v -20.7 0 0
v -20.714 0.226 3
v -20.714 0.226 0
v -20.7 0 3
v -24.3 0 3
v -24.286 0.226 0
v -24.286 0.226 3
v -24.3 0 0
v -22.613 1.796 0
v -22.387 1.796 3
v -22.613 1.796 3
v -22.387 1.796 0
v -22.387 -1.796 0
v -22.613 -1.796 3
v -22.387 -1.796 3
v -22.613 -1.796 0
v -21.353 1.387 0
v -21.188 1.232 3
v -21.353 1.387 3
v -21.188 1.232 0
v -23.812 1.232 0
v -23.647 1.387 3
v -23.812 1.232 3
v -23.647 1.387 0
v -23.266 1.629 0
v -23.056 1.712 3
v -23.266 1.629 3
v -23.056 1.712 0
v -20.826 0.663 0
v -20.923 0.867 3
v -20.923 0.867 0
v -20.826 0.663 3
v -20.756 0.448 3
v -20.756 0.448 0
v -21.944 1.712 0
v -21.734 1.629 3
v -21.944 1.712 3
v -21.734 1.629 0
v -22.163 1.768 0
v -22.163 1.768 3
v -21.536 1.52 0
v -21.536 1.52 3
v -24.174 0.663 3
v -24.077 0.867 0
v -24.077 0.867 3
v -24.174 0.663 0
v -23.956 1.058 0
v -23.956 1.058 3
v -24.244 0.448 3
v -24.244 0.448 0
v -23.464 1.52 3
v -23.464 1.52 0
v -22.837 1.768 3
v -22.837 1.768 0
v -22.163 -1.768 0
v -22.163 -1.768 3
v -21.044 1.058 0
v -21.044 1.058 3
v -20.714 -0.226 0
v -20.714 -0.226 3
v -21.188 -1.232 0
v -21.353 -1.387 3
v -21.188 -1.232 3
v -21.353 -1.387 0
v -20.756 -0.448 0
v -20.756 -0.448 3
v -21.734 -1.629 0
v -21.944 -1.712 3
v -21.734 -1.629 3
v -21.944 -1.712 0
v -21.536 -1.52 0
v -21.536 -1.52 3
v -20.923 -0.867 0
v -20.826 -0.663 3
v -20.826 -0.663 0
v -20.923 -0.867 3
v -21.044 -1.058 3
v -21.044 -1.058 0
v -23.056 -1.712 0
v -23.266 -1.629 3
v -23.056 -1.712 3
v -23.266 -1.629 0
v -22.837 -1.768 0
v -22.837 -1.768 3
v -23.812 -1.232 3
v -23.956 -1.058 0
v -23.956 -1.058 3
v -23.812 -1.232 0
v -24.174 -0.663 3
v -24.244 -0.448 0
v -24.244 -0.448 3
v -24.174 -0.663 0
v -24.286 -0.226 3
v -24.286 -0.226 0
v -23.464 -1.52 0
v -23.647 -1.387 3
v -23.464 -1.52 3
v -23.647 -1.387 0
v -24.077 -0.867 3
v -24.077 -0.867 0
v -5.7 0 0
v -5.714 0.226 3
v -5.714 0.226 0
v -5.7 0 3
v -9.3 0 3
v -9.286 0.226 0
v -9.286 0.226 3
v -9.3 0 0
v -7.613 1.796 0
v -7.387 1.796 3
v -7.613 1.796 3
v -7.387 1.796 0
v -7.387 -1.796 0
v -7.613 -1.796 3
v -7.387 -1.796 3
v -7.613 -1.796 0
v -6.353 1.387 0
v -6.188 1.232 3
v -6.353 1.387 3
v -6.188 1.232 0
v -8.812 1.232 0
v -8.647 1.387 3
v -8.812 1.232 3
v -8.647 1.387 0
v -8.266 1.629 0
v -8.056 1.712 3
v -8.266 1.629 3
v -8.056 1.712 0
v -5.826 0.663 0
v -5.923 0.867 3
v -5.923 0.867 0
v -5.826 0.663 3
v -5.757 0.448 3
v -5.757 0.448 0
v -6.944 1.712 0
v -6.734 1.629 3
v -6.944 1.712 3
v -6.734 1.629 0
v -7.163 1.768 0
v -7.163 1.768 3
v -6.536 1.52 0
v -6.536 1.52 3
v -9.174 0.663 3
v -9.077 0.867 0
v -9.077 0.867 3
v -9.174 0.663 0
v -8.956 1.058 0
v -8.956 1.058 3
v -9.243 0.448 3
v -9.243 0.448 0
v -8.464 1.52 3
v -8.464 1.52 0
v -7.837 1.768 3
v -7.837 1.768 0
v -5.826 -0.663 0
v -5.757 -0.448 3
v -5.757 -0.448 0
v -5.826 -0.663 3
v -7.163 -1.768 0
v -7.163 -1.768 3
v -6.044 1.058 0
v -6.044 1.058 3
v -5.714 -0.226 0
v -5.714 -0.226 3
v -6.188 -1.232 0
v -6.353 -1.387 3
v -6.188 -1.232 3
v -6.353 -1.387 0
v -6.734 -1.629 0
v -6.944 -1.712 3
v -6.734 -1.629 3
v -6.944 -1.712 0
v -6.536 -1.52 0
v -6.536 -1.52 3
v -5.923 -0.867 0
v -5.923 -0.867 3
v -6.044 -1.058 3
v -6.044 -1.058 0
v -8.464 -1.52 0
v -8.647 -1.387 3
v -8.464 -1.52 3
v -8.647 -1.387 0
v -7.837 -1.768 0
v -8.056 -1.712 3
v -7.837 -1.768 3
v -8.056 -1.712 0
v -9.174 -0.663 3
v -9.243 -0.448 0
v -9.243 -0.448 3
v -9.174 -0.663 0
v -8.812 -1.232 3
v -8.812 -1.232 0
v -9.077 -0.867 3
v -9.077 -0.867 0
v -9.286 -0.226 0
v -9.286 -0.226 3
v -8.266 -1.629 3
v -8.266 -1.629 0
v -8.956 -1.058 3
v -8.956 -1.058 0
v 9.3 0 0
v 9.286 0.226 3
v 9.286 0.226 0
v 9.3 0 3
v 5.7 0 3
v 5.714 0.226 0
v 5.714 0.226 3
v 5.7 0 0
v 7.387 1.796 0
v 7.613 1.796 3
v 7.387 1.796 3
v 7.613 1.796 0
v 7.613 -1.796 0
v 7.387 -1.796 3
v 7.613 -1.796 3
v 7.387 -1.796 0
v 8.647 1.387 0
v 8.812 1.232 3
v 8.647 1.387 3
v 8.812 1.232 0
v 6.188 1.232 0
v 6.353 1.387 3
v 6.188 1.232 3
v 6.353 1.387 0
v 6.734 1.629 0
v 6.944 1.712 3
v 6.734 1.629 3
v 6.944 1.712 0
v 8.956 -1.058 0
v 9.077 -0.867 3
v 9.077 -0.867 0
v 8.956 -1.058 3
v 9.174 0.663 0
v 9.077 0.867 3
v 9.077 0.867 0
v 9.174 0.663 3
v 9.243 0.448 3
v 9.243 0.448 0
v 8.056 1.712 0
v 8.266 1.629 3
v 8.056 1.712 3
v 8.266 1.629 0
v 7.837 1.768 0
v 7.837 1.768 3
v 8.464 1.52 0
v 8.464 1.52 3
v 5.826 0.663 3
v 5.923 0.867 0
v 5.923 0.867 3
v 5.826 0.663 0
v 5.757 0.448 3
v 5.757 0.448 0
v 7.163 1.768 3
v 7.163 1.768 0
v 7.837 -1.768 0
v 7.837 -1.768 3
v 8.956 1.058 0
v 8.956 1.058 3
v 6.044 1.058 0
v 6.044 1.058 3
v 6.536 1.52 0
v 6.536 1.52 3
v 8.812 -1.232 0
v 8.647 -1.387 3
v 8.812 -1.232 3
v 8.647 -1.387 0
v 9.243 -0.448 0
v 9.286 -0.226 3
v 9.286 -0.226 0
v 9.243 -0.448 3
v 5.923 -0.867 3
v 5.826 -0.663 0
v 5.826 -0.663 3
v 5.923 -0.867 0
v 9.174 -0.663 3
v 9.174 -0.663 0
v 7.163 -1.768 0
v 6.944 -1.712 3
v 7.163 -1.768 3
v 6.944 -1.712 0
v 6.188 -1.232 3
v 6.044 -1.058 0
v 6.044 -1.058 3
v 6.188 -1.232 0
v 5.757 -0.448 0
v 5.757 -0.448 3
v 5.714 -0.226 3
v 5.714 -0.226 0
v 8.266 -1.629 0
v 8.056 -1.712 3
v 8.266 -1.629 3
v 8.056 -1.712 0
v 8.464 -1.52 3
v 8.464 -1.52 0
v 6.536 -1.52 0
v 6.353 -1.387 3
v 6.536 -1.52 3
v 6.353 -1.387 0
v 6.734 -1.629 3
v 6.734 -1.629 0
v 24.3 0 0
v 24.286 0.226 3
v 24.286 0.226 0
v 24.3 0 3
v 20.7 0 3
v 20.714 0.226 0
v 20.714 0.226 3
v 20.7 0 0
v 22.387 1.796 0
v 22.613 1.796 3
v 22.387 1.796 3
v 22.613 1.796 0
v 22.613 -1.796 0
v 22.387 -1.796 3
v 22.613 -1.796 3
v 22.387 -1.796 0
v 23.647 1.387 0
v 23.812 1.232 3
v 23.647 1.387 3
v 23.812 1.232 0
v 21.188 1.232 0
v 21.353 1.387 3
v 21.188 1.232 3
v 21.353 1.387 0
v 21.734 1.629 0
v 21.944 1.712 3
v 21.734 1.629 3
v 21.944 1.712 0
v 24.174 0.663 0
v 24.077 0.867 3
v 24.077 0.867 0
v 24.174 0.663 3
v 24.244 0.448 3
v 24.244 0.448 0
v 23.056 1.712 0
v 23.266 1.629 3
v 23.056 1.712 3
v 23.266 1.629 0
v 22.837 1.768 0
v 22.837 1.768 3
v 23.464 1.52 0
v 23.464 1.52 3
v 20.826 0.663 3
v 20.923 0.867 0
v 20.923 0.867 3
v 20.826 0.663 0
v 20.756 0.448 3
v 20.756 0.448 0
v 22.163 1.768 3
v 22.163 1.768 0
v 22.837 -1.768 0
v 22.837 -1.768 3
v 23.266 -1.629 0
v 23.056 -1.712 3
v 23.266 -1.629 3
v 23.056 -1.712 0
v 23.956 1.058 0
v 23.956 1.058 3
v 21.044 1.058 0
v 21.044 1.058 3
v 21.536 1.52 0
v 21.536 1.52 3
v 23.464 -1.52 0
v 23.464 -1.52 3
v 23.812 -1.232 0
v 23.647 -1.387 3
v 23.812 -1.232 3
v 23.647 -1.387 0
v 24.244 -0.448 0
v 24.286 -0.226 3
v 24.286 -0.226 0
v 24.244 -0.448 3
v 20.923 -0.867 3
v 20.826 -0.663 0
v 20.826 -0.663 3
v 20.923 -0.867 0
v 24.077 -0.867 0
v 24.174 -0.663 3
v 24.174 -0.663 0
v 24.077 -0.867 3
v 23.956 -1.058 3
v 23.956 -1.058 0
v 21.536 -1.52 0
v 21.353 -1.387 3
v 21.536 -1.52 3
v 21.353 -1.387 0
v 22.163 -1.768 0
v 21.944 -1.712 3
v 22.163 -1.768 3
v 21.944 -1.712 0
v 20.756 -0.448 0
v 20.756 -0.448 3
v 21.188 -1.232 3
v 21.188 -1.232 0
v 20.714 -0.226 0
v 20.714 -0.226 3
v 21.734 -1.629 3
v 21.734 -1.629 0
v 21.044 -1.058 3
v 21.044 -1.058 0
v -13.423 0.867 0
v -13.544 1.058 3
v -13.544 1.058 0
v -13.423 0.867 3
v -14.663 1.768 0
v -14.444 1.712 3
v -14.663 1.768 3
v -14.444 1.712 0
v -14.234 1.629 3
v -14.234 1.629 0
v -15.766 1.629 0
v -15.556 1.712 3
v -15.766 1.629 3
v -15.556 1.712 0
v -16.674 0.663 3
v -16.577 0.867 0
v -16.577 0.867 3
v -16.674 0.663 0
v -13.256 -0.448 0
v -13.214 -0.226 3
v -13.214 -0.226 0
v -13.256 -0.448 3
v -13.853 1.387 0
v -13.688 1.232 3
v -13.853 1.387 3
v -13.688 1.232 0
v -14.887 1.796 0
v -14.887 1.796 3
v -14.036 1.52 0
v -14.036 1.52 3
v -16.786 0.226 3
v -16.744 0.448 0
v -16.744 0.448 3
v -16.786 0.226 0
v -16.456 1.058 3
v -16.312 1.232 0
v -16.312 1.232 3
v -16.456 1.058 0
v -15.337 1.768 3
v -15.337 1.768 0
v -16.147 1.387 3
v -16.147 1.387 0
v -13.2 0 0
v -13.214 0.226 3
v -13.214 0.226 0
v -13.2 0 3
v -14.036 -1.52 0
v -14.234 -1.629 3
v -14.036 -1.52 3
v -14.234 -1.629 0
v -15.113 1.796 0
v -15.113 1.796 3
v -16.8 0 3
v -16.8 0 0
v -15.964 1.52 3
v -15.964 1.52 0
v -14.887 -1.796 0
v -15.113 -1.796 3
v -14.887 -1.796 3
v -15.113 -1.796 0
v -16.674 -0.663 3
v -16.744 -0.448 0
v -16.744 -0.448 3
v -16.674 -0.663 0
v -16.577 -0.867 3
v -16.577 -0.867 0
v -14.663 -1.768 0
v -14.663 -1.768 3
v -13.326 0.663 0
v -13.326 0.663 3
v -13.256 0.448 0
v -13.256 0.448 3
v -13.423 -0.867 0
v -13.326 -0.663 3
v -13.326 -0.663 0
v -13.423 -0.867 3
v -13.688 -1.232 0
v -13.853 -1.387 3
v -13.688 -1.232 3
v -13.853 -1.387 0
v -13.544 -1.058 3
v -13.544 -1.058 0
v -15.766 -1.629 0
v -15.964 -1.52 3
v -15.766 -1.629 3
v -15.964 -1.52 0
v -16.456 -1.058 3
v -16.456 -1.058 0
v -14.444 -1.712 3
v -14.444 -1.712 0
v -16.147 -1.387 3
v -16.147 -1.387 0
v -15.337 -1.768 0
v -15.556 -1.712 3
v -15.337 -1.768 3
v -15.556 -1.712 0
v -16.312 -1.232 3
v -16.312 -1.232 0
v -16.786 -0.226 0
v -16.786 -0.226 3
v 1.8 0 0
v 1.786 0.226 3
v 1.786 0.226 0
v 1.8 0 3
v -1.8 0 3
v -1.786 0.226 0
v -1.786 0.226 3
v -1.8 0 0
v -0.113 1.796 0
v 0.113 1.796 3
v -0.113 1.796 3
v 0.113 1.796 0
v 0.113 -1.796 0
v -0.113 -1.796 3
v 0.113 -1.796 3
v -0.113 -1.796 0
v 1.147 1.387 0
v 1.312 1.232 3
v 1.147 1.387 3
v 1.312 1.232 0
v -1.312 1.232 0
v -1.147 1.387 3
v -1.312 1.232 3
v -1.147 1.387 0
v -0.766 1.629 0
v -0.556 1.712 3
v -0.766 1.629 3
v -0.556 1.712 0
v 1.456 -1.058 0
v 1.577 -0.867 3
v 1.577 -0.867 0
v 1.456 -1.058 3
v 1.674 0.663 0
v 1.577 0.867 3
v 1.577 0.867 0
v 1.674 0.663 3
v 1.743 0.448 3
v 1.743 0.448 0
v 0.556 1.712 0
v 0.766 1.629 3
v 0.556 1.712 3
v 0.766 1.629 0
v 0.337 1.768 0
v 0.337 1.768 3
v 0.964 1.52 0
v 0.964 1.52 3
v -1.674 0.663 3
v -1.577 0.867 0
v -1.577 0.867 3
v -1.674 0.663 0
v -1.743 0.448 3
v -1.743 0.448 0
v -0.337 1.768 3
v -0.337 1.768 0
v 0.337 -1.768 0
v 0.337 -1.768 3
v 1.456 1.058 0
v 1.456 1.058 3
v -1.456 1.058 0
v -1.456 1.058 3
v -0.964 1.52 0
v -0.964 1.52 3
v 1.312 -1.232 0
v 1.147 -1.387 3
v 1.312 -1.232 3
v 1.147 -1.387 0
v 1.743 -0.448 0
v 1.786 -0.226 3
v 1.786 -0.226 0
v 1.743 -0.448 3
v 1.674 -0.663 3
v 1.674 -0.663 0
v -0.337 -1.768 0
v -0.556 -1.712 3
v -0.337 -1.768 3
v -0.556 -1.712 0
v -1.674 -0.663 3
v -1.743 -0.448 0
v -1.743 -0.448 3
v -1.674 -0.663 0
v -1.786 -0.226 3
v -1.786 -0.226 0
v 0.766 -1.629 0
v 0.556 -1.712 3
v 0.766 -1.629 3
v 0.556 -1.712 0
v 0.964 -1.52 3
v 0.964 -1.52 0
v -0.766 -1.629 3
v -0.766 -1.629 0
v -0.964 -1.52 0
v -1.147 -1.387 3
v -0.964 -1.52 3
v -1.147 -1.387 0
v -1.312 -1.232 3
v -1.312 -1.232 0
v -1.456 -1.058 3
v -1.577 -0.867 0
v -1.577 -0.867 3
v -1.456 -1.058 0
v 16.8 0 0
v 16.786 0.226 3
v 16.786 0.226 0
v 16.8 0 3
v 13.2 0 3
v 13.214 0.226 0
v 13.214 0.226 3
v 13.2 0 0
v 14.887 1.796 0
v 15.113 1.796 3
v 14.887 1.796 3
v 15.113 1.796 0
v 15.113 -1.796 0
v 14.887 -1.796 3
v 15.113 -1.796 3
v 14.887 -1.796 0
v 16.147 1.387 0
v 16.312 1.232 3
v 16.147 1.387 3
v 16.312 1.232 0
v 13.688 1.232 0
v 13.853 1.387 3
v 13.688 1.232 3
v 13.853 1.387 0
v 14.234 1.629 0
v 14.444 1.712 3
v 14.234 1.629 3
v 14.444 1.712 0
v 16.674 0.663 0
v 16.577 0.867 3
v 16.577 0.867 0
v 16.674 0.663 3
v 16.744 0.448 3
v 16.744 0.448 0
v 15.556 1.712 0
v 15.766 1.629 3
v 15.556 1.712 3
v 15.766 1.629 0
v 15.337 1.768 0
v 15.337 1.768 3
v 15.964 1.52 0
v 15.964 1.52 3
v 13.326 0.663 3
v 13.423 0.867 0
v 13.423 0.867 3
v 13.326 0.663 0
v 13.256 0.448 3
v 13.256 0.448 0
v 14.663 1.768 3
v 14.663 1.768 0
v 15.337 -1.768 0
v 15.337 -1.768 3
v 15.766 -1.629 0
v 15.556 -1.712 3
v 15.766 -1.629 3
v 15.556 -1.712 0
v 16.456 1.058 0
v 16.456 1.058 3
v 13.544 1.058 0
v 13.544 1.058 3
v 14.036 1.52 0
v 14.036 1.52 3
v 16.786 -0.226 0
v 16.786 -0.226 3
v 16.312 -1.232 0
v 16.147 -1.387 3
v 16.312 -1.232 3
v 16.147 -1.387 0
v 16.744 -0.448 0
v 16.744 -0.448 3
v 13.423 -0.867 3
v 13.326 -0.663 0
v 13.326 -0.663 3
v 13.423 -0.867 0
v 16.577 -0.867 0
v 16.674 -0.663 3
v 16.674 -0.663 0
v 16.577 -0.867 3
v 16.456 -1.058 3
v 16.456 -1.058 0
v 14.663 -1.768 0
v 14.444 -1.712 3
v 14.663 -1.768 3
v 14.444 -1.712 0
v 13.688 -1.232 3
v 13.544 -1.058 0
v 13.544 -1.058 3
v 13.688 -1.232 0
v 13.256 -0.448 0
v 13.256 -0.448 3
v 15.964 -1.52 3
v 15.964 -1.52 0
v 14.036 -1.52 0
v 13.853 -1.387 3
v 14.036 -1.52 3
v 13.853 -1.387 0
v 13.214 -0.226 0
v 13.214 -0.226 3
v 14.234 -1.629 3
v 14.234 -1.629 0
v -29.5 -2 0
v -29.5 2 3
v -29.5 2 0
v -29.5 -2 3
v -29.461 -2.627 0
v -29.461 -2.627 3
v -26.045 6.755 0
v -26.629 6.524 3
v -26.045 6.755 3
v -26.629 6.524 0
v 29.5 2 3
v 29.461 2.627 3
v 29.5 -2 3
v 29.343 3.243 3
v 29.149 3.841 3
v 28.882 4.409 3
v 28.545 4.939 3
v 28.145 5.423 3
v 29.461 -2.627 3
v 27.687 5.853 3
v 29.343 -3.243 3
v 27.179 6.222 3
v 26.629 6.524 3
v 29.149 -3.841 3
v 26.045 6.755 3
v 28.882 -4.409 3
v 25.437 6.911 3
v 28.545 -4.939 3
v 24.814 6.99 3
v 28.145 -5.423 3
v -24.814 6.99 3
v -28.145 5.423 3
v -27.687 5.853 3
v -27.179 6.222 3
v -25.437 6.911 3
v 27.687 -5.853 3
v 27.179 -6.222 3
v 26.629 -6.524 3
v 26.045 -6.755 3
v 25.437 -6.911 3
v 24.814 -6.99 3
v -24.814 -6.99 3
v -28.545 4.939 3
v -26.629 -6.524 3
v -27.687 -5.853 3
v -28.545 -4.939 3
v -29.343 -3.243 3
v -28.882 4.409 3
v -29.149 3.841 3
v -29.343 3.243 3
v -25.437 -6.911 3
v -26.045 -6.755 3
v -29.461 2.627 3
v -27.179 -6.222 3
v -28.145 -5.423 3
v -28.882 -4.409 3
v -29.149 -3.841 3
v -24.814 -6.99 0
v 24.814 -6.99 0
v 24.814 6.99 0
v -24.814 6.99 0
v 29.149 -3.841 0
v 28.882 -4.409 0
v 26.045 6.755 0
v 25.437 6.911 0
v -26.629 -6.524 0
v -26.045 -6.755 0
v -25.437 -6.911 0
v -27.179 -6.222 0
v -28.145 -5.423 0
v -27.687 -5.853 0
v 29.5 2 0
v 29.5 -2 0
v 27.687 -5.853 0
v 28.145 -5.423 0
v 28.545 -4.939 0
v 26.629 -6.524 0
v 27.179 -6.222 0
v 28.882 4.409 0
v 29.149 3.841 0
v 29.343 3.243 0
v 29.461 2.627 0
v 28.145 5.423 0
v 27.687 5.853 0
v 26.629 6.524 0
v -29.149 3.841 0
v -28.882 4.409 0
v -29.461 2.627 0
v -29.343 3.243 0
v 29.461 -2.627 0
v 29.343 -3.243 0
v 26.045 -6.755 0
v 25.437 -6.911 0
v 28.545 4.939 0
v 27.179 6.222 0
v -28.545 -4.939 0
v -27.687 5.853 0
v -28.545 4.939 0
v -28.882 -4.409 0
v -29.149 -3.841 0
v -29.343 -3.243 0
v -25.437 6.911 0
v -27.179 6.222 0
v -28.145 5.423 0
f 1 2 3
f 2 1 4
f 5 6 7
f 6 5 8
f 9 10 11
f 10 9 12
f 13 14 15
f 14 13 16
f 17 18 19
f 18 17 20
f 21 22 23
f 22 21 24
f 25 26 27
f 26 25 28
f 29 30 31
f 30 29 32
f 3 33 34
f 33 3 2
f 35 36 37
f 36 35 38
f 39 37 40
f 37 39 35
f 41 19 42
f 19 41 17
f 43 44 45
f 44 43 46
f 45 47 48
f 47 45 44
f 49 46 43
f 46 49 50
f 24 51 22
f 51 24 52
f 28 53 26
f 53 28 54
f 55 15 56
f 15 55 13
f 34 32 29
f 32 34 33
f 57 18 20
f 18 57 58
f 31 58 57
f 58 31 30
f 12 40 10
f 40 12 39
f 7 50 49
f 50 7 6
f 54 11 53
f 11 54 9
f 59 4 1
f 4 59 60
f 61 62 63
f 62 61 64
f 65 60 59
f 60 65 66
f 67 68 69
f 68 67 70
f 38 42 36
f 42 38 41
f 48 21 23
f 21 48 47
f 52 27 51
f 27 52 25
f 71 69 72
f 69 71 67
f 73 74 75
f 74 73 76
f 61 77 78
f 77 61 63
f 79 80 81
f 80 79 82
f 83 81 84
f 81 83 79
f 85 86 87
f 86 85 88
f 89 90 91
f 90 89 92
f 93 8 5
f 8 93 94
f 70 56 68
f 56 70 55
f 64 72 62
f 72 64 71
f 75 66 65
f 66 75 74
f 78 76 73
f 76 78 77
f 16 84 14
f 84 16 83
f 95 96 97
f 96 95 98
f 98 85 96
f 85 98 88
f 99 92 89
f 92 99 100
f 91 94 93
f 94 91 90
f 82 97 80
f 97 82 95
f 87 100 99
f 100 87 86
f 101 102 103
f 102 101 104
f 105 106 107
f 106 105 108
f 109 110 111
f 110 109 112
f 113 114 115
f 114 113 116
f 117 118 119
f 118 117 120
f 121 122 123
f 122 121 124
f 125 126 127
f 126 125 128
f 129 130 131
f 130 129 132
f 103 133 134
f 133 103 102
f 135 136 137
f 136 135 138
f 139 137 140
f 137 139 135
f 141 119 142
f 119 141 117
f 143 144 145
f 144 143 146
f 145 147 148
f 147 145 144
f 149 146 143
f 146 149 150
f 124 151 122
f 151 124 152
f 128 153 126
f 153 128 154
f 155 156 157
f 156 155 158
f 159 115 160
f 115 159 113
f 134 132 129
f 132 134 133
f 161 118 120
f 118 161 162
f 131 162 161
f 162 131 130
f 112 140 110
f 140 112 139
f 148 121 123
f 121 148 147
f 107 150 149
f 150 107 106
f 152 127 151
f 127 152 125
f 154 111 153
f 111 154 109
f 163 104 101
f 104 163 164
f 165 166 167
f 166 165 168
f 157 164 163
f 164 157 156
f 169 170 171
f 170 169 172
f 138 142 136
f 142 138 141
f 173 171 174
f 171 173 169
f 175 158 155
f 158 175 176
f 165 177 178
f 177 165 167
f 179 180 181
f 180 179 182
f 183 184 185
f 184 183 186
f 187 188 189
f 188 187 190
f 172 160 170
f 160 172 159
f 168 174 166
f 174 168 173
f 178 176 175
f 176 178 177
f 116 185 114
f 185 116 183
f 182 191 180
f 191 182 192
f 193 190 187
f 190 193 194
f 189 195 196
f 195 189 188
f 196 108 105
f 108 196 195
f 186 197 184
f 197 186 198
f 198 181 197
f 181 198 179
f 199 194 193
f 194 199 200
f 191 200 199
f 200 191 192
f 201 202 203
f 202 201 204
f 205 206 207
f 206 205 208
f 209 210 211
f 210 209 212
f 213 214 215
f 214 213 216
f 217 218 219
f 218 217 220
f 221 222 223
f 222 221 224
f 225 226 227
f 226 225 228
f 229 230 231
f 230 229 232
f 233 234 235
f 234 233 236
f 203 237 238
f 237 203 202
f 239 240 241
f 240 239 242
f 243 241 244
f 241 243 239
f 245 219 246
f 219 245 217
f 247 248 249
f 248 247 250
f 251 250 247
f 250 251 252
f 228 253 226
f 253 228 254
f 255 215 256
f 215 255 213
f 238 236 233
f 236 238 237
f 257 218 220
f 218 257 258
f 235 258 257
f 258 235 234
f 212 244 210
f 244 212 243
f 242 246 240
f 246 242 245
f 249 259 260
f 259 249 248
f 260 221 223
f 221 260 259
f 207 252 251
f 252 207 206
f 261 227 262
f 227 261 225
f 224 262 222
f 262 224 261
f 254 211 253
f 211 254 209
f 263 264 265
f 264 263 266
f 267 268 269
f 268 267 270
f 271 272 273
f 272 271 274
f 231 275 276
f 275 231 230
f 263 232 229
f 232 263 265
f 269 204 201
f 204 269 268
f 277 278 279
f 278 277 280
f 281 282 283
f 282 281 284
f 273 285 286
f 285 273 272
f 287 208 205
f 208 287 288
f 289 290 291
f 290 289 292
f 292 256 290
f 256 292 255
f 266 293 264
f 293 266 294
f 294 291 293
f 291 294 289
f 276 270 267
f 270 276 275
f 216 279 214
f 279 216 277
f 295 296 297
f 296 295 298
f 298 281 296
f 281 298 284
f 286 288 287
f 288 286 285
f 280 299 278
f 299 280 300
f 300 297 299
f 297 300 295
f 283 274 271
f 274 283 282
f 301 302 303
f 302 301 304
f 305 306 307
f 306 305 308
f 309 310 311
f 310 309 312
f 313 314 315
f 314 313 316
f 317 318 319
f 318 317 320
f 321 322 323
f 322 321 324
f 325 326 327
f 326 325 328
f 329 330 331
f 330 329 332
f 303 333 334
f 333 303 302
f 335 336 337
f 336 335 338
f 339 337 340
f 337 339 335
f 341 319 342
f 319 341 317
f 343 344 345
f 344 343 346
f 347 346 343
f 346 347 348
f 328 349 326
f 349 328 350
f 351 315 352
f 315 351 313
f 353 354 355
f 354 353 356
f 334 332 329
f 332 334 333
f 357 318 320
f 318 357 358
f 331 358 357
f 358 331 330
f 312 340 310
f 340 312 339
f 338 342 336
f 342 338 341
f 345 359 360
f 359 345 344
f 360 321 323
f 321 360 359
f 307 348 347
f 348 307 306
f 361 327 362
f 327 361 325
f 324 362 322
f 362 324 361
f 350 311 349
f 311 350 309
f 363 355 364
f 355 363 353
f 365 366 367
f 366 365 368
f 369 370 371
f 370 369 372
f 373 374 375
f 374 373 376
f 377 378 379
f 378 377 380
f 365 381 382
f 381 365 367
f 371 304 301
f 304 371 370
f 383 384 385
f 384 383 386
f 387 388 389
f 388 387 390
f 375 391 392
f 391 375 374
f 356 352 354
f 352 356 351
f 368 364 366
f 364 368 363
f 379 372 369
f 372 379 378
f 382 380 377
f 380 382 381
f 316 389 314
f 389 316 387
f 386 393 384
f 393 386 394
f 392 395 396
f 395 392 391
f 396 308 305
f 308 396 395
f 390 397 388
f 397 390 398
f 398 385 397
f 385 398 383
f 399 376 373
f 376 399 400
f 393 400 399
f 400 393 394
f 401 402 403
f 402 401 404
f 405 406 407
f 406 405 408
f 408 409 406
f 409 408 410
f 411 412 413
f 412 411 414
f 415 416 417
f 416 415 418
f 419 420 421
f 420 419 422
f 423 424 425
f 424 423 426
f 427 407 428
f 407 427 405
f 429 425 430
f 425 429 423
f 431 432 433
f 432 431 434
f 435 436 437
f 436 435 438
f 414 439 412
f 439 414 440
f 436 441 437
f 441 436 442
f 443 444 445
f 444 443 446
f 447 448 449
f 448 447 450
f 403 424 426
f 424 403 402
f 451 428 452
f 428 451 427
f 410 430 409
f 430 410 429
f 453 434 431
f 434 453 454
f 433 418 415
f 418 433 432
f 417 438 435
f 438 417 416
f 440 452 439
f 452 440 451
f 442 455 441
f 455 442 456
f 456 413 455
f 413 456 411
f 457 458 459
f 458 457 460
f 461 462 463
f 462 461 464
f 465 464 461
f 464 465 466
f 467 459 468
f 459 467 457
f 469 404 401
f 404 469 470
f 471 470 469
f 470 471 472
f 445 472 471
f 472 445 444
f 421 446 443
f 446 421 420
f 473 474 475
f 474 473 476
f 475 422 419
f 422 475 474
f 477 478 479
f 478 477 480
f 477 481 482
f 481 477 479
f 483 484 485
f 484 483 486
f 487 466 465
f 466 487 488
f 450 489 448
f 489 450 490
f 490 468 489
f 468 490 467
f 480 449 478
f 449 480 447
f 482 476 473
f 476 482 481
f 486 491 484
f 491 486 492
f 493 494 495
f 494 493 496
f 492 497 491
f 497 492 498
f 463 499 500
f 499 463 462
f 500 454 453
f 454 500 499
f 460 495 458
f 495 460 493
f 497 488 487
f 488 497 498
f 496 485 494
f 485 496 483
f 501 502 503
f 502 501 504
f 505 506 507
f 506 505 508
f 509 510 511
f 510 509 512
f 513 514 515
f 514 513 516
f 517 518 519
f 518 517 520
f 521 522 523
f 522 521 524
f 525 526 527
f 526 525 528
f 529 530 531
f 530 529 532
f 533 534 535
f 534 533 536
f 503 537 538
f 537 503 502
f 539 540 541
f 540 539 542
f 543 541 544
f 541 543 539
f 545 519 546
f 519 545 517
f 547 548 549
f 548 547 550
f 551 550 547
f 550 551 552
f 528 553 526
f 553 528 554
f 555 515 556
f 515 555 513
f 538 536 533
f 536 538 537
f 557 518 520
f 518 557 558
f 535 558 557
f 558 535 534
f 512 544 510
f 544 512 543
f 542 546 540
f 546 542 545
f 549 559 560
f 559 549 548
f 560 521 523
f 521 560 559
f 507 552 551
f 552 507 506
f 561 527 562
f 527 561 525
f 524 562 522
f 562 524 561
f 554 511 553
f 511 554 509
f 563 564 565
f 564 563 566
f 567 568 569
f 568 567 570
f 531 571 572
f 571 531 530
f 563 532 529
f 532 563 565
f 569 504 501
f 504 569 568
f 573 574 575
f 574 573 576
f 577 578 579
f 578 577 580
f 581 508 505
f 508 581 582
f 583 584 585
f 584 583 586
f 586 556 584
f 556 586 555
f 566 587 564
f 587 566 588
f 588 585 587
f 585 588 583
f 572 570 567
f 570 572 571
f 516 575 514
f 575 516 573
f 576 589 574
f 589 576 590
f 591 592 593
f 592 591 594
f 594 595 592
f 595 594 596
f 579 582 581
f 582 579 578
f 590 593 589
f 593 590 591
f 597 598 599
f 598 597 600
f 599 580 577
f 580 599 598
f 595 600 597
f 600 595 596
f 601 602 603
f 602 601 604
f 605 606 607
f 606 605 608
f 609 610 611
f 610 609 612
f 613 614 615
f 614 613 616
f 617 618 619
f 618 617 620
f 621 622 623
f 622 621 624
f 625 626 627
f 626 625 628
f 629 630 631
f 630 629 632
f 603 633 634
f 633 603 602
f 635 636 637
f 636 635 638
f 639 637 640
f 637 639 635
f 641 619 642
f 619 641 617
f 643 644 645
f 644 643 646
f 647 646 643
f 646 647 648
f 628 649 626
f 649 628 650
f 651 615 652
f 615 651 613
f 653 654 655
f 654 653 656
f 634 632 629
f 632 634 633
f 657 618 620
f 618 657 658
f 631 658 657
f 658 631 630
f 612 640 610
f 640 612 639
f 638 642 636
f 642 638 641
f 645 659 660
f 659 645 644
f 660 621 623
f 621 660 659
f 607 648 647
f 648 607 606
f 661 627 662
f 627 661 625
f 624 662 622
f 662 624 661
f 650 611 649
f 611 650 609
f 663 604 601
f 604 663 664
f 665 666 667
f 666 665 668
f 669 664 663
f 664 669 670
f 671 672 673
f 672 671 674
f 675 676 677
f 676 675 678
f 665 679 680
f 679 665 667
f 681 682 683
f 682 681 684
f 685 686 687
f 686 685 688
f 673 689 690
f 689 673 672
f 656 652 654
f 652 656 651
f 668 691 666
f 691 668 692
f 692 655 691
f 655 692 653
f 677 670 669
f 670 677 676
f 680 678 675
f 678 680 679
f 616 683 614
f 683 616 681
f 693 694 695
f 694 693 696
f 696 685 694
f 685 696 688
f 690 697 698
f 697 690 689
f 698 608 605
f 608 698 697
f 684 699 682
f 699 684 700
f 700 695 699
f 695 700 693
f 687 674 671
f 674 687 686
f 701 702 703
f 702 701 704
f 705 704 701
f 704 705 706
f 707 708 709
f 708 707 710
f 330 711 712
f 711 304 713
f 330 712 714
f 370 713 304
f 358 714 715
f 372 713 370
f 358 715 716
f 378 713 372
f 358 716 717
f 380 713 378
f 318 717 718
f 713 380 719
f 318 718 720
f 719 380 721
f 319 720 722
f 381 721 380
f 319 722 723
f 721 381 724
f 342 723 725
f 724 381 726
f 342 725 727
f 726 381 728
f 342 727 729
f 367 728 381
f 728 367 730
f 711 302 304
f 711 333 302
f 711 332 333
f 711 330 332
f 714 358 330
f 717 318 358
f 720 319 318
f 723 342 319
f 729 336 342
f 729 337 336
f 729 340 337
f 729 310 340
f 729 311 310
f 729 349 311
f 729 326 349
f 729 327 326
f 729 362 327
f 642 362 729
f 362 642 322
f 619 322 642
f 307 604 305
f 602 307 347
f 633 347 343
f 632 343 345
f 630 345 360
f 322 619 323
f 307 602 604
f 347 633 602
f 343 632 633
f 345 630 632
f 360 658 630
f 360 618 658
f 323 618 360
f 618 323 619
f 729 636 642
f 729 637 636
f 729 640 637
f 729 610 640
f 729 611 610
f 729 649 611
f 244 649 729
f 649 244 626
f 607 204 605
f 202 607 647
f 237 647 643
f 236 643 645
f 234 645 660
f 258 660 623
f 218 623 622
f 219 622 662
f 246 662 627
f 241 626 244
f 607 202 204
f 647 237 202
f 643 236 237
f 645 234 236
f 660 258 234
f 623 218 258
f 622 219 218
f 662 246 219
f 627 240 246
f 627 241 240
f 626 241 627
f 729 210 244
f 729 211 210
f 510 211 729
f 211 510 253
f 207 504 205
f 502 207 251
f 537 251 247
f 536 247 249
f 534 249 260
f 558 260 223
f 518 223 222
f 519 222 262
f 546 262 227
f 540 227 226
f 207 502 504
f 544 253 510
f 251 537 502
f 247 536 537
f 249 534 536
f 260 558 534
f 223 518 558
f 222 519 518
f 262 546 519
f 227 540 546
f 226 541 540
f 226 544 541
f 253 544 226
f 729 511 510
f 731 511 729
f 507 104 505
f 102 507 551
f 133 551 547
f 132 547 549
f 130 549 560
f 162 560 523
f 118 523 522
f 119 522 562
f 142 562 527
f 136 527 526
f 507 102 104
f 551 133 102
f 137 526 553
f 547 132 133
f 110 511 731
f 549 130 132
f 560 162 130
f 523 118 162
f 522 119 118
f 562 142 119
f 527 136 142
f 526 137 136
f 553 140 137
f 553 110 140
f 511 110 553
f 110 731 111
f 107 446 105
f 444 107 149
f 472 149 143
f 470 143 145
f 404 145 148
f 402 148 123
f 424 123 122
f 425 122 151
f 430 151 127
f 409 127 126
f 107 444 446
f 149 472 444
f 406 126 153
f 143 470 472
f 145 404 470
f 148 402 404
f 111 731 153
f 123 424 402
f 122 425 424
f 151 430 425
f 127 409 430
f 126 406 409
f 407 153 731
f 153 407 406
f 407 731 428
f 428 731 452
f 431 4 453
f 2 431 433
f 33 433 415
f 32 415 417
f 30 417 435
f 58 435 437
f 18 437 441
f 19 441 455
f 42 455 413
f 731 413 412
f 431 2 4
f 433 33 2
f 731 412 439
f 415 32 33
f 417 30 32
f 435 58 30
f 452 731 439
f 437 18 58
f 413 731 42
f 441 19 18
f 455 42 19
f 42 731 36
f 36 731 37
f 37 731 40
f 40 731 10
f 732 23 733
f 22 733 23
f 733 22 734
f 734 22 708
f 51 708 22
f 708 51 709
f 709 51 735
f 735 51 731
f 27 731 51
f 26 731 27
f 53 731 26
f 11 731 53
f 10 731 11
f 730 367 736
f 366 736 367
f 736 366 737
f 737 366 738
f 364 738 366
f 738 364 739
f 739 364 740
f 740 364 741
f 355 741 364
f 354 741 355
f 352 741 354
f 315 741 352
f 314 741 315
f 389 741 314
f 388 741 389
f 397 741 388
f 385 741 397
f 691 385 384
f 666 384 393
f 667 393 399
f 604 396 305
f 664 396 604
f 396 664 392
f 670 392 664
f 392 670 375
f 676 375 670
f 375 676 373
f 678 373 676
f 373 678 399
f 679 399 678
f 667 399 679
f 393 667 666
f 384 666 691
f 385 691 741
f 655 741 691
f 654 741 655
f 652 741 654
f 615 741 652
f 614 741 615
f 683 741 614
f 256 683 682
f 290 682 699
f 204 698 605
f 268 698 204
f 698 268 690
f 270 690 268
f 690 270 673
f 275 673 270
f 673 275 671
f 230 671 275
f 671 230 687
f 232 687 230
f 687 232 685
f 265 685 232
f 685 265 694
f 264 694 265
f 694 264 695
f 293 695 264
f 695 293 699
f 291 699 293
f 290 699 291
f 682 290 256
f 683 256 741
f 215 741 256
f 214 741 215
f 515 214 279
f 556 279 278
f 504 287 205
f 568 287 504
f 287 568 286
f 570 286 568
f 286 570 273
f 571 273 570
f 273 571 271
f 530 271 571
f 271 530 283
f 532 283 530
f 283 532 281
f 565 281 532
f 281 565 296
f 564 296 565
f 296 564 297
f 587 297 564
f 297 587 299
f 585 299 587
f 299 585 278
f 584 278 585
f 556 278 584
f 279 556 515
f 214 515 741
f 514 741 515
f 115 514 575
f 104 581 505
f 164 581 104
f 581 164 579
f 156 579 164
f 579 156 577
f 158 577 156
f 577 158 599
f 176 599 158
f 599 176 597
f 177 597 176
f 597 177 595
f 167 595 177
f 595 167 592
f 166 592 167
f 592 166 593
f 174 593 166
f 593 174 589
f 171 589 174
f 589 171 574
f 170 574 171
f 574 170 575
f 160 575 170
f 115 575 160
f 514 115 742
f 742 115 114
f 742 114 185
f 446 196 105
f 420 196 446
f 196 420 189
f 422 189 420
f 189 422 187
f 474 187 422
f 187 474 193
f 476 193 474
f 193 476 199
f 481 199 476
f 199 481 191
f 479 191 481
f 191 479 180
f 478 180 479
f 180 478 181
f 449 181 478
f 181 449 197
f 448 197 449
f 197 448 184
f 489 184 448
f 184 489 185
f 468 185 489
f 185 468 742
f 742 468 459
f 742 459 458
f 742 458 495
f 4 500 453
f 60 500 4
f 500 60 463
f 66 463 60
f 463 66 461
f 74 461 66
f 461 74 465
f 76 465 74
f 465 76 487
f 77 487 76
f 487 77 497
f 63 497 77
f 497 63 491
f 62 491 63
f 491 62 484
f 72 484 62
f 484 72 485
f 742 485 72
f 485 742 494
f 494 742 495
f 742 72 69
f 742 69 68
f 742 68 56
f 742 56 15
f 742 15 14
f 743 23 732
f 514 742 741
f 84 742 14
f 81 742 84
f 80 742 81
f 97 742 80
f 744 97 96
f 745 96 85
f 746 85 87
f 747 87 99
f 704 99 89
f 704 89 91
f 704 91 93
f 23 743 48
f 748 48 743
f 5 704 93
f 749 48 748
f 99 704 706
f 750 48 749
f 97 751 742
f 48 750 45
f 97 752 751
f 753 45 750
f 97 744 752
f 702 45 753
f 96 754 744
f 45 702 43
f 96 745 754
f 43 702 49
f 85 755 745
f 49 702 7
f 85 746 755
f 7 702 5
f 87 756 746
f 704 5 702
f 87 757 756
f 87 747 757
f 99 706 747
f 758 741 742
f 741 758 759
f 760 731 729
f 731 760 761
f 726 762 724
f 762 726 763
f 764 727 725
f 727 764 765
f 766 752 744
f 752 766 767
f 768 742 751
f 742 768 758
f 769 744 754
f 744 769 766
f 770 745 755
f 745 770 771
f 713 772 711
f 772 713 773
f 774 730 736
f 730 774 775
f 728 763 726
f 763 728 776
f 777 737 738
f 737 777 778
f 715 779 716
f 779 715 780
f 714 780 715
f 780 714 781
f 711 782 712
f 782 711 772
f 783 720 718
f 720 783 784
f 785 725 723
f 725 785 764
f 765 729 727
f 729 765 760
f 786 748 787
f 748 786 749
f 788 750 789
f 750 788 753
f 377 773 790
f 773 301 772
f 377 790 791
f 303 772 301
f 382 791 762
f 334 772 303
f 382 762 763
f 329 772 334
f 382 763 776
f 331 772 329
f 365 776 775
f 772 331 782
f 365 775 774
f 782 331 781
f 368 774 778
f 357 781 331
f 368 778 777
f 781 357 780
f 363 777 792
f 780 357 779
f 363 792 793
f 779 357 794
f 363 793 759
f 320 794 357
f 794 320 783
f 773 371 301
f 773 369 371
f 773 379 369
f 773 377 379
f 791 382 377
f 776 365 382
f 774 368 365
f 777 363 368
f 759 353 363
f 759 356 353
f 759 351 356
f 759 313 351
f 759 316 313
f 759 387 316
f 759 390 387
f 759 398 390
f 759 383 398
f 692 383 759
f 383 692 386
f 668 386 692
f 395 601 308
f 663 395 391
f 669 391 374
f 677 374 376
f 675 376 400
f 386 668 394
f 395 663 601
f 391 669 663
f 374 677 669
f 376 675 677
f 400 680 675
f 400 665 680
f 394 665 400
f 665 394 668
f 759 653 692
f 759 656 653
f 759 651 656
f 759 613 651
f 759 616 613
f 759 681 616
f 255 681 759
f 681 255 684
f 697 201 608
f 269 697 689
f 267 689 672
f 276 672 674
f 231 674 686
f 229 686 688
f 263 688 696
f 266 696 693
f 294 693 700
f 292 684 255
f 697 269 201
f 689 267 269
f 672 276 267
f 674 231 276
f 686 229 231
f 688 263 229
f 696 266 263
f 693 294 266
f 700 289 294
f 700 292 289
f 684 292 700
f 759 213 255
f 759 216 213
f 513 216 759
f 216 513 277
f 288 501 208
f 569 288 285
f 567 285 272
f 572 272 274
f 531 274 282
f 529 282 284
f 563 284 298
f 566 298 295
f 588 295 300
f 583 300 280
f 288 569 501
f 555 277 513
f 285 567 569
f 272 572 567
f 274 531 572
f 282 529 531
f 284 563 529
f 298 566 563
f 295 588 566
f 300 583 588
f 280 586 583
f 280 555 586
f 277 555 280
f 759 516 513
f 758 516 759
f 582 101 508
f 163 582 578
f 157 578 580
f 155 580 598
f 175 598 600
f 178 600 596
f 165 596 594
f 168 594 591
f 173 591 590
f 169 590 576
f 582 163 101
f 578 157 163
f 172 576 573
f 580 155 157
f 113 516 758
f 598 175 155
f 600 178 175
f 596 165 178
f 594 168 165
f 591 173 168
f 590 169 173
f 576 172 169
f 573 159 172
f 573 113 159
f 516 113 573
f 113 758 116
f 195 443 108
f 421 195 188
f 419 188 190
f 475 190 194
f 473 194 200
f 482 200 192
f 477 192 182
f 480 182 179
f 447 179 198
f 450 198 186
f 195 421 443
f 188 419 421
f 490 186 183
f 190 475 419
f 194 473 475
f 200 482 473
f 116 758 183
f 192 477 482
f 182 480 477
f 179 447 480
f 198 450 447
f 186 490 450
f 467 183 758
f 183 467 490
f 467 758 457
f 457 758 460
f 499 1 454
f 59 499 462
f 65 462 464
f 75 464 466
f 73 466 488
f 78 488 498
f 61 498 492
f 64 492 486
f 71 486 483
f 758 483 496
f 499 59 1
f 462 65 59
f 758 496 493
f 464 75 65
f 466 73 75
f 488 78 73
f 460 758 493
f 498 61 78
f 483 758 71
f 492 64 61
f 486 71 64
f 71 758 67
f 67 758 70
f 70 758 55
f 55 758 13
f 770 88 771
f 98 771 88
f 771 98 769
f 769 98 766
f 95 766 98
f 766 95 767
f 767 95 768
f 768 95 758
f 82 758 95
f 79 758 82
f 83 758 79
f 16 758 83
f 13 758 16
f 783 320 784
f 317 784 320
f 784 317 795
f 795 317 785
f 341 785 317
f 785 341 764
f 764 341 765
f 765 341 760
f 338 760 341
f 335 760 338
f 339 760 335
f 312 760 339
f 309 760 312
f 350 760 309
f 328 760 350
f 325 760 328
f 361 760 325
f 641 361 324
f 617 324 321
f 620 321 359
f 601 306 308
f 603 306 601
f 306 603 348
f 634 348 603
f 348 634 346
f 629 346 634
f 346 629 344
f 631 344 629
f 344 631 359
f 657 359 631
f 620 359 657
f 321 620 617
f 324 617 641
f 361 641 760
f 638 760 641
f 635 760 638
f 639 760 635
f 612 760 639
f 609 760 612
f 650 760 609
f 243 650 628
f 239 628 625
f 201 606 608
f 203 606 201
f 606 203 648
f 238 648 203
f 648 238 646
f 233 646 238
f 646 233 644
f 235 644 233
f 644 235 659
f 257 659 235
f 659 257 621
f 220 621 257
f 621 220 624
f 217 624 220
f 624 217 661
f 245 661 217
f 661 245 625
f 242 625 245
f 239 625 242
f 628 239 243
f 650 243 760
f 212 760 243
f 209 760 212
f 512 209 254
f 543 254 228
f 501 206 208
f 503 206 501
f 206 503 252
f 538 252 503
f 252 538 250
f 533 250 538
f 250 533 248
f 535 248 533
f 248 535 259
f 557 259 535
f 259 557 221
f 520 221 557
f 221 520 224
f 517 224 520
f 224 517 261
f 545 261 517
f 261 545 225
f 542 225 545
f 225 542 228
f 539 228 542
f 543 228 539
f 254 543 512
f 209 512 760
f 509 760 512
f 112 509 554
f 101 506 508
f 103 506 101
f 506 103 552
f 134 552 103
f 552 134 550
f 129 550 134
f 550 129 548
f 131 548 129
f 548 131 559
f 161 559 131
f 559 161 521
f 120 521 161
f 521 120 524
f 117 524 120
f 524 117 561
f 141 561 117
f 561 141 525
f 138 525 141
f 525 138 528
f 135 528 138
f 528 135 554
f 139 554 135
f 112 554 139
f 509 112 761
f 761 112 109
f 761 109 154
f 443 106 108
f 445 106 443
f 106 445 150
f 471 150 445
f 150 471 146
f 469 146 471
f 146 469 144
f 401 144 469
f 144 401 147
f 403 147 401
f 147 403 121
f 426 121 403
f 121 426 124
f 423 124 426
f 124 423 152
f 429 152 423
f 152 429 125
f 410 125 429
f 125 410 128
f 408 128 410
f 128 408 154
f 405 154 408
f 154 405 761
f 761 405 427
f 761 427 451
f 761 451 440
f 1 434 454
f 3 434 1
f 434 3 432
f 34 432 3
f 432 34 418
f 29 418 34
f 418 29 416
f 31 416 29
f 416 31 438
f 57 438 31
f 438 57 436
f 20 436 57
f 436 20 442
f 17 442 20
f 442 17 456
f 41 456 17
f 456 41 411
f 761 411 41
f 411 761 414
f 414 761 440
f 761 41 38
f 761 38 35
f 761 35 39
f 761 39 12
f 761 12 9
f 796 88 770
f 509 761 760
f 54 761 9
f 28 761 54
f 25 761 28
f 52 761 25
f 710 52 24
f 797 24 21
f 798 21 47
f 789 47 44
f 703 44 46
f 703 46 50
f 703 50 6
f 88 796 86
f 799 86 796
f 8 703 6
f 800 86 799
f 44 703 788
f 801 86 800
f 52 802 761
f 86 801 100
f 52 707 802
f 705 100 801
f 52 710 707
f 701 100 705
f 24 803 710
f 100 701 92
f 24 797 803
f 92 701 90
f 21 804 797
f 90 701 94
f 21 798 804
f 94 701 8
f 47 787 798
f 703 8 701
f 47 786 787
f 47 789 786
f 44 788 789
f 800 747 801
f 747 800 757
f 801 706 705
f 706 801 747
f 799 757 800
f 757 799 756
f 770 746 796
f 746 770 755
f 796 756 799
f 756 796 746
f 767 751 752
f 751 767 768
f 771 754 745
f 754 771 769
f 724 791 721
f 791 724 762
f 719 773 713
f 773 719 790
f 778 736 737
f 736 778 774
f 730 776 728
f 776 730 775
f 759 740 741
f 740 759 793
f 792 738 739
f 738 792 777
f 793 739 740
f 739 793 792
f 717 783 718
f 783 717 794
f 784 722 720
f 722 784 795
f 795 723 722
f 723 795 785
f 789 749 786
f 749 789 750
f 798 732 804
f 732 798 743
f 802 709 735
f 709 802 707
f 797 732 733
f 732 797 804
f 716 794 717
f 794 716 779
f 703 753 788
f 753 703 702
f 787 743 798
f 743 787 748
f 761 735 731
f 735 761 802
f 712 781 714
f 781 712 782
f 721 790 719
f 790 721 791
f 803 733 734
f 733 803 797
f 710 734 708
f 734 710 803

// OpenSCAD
$fn = 50;


difference() {
	union() {
		hull() {
			translate(v = [-24.5000000000, 2.0000000000, 0]) {
				cylinder(h = 3, r = 5);
			}
			translate(v = [24.5000000000, 2.0000000000, 0]) {
				cylinder(h = 3, r = 5);
			}
			translate(v = [-24.5000000000, -2.0000000000, 0]) {
				cylinder(h = 3, r = 5);
			}
			translate(v = [24.5000000000, -2.0000000000, 0]) {
				cylinder(h = 3, r = 5);
			}
		}
	}
	union() {
		translate(v = [-22.5000000000, 0.0000000000, -100.0000000000]) {
			cylinder(h = 200, r = 1.8000000000);
		}
		translate(v = [-7.5000000000, 0.0000000000, -100.0000000000]) {
			cylinder(h = 200, r = 1.8000000000);
		}
		translate(v = [7.5000000000, 0.0000000000, -100.0000000000]) {
			cylinder(h = 200, r = 1.8000000000);
		}
		translate(v = [22.5000000000, 0.0000000000, -100.0000000000]) {
			cylinder(h = 200, r = 1.8000000000);
		}
		translate(v = [-22.5000000000, 0.0000000000, 0]) {
			cylinder(h = 3, r = 1.8000000000);
		}
		translate(v = [-15.0000000000, 0.0000000000, 0]) {
			cylinder(h = 3, r = 1.8000000000);
		}
		translate(v = [-7.5000000000, 0.0000000000, 0]) {
			cylinder(h = 3, r = 1.8000000000);
		}
		cylinder(h = 3, r = 1.8000000000);
		translate(v = [7.5000000000, 0.0000000000, 0]) {
			cylinder(h = 3, r = 1.8000000000);
		}
		translate(v = [15.0000000000, 0.0000000000, 0]) {
			cylinder(h = 3, r = 1.8000000000);
		}
		translate(v = [22.5000000000, 0.0000000000, 0]) {
			cylinder(h = 3, r = 1.8000000000);
		}
		translate(v = [-22.5000000000, 0.0000000000, 0]) {
			cylinder(h = 3, r = 1.8000000000);
		}
		translate(v = [-15.0000000000, 0.0000000000, 0]) {
			cylinder(h = 3, r = 1.8000000000);
		}
		translate(v = [-7.5000000000, 0.0000000000, 0]) {
			cylinder(h = 3, r = 1.8000000000);
		}
		cylinder(h = 3, r = 1.8000000000);
		translate(v = [7.5000000000, 0.0000000000, 0]) {
			cylinder(h = 3, r = 1.8000000000);
		}
		translate(v = [15.0000000000, 0.0000000000, 0]) {
			cylinder(h = 3, r = 1.8000000000);
		}
		translate(v = [22.5000000000, 0.0000000000, 0]) {
			cylinder(h = 3, r = 1.8000000000);
		}
		translate(v = [-22.5000000000, 0.0000000000, 0]) {
			cylinder(h = 3, r = 1.8000000000);
		}
		translate(v = [-15.0000000000, 0.0000000000, 0]) {
			cylinder(h = 3, r = 1.8000000000);
		}
		translate(v = [-7.5000000000, 0.0000000000, 0]) {
			cylinder(h = 3, r = 1.8000000000);
		}
		cylinder(h = 3, r = 1.8000000000);
		translate(v = [7.5000000000, 0.0000000000, 0]) {
			cylinder(h = 3, r = 1.8000000000);
		}
		translate(v = [15.0000000000, 0.0000000000, 0]) {
			cylinder(h = 3, r = 1.8000000000);
		}
		translate(v = [22.5000000000, 0.0000000000, 0]) {
			cylinder(h = 3, r = 1.8000000000);
		}
	}
}
